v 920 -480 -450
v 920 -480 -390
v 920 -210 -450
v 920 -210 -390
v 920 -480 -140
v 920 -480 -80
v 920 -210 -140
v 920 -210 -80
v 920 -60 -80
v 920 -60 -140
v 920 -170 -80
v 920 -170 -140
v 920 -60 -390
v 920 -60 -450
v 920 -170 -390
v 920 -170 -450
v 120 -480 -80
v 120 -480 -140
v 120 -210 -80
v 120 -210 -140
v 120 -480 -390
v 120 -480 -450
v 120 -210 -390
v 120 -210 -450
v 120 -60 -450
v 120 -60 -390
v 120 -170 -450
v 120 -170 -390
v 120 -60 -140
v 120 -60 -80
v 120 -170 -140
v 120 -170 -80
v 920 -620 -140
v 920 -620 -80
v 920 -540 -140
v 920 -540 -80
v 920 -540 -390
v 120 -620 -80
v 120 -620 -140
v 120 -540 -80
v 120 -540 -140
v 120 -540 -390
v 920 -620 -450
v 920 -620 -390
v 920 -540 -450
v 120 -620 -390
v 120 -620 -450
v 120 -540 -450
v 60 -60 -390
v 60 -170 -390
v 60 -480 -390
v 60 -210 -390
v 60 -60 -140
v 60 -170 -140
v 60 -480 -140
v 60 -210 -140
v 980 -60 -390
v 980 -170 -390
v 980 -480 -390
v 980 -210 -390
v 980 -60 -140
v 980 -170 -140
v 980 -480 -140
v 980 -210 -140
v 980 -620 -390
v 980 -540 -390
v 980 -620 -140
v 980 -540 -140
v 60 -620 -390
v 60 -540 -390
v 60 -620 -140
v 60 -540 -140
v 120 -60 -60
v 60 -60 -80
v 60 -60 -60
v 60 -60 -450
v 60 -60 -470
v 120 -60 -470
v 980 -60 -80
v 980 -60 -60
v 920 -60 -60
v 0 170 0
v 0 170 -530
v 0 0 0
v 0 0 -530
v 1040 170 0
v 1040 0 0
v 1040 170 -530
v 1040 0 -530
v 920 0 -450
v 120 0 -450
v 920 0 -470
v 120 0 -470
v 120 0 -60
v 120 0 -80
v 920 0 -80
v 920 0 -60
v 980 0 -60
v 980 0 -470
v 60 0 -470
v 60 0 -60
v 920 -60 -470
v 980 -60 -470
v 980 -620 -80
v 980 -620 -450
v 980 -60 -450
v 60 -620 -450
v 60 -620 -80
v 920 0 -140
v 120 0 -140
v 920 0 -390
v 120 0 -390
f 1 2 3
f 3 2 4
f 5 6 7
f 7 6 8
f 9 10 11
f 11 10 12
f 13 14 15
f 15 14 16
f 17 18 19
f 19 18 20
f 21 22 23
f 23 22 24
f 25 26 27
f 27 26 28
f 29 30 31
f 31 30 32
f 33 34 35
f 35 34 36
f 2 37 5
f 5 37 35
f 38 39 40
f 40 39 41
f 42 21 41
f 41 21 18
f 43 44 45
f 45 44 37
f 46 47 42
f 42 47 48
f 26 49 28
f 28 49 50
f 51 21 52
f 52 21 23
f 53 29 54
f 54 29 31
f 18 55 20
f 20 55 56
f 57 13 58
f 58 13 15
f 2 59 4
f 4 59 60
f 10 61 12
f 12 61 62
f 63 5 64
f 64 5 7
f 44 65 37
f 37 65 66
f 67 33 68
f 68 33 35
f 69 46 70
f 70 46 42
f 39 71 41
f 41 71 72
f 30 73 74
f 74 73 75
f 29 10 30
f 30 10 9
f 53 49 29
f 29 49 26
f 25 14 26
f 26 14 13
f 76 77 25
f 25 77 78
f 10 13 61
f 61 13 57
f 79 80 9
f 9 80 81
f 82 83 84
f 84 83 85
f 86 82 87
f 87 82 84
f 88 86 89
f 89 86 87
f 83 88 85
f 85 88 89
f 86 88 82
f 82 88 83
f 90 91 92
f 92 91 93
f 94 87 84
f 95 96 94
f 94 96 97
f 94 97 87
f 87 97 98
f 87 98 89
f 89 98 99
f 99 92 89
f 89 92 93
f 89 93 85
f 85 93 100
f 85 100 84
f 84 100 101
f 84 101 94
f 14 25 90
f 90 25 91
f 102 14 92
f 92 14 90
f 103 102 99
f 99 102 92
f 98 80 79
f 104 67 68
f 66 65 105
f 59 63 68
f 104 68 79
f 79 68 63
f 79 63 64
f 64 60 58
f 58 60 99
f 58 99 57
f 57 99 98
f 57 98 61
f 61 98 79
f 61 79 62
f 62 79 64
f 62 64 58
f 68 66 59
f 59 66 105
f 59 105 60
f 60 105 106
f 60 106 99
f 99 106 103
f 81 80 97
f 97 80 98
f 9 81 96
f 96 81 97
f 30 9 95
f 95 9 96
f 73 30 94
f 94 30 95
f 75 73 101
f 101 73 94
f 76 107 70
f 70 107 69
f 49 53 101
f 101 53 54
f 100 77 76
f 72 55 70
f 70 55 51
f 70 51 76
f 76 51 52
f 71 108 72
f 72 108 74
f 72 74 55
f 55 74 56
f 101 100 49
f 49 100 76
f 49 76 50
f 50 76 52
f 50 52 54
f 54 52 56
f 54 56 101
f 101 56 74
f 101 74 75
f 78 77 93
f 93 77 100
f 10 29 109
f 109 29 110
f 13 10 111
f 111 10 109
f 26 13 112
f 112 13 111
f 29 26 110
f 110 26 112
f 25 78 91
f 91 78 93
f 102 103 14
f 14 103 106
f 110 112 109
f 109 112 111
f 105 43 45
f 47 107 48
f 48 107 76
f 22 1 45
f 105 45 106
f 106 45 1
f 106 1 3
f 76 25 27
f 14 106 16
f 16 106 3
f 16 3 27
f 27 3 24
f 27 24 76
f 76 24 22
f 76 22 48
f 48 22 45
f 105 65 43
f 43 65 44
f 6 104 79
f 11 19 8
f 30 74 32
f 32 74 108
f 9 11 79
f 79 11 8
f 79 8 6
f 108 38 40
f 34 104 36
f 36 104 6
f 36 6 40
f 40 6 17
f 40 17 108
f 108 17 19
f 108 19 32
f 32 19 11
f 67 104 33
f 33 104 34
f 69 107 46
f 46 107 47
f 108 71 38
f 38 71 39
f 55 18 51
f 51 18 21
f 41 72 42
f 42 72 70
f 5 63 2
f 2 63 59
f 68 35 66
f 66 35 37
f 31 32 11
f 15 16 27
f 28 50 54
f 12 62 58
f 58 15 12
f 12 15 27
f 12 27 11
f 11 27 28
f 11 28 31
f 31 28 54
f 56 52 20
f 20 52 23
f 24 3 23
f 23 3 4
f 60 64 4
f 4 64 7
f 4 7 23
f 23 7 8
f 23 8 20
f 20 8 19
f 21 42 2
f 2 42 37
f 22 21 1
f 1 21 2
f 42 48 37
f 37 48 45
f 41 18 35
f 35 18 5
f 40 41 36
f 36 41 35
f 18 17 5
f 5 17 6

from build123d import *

# Parameters (mm, degrees)
SKETCH_2_W      = 1040
SKETCH_2_H      = 530
EXTRUDE_1_DEPTH = 170
SKETCH_3_W      = 800
SKETCH_3_H      = 60
SKETCH_3_W_2    = 60
SKETCH_3_H_2    = 410
EXTRUDE_2_DEPTH = 60
SKETCH_4_W      = 60
SKETCH_4_H      = 60
EXTRUDE_3_DEPTH = 560
EXTRUDE_4_REACH = 1274.046
SKETCH_5_W      = 60
SKETCH_5_H      = 60
SKETCH_5_H_2    = 40
EXTRUDE_5_REACH = 1231.512
SKETCH_6_W      = 60
SKETCH_6_H      = 60
EXTRUDE_6_REACH = 1231.512
SKETCH_7_W      = 370
SKETCH_7_H      = 40


with BuildPart() as part:
    # ｽｹｯﾁ2 → ﾎﾞｽ - 押し出し1 (new body)
    with BuildSketch(Plane(origin=(0, 0, 0), x_dir=(1, 0, 0), z_dir=(0, 1, 0))):
        with Locations((520, 265)):
            Rectangle(SKETCH_2_W, SKETCH_2_H)
    extrude(amount=EXTRUDE_1_DEPTH)

    # ｽｹｯﾁ3 → ﾎﾞｽ - 押し出し2 (add)
    with BuildSketch(Plane(origin=(0, 0, 0), x_dir=(-1, 0, 0), z_dir=(0, -1, 0))):
        with Locations((-520, 420)):
            Rectangle(SKETCH_3_W, SKETCH_3_H)
        with Locations((-950, 265)):
            Rectangle(SKETCH_3_W_2, SKETCH_3_H_2)
        with Locations((-520, 110)):
            Rectangle(SKETCH_3_W, SKETCH_3_H)
        with Locations((-90, 265)):
            Rectangle(SKETCH_3_W_2, SKETCH_3_H_2)
    extrude(amount=EXTRUDE_2_DEPTH)

    # ｽｹｯﾁ4 → ﾎﾞｽ - 押し出し3 (add)
    with BuildSketch(Plane(origin=(0, -60, 0), x_dir=(-1, 0, 0), z_dir=(0, -1, 0))):
        with Locations((-950, 420)):
            Rectangle(SKETCH_4_W, SKETCH_4_H)
        with Locations((-950, 110)):
            Rectangle(SKETCH_4_W, SKETCH_4_H)
        with Locations((-90, 420)):
            Rectangle(SKETCH_4_W, SKETCH_4_H)
        with Locations((-90, 110)):
            Rectangle(SKETCH_4_W, SKETCH_4_H)
    extrude(amount=EXTRUDE_3_DEPTH)

    # ｽｹｯﾁ5 → ﾎﾞｽ - 押し出し4 (add, up to next)
    with BuildSketch(Plane(origin=(0, 0, -140), x_dir=(-1, 0, 0), z_dir=(0, 0, -1)), mode=Mode.PRIVATE) as extrude_4_sk1:
        with Locations((-90, -510)):
            Rectangle(SKETCH_5_W, SKETCH_5_H)
    extrude_4_tool1 = extrude(extrude_4_sk1.sketch, amount=EXTRUDE_4_REACH, mode=Mode.PRIVATE) - part.part
    # ｽｹｯﾁ5 → ﾎﾞｽ - 押し出し4 (add, up to next)
    with BuildSketch(Plane(origin=(0, 0, -140), x_dir=(-1, 0, 0), z_dir=(0, 0, -1)), mode=Mode.PRIVATE) as extrude_4_sk2:
        with Locations((-950, -510)):
            Rectangle(SKETCH_5_W, SKETCH_5_H)
    extrude_4_tool2 = extrude(extrude_4_sk2.sketch, amount=EXTRUDE_4_REACH, mode=Mode.PRIVATE) - part.part
    # ｽｹｯﾁ5 → ﾎﾞｽ - 押し出し4 (add, up to next)
    with BuildSketch(Plane(origin=(0, 0, -140), x_dir=(-1, 0, 0), z_dir=(0, 0, -1)), mode=Mode.PRIVATE) as extrude_4_sk3:
        with Locations((-950, -190)):
            Rectangle(SKETCH_5_W, SKETCH_5_H_2)
    extrude_4_tool3 = extrude(extrude_4_sk3.sketch, amount=EXTRUDE_4_REACH, mode=Mode.PRIVATE) - part.part
    # ｽｹｯﾁ5 → ﾎﾞｽ - 押し出し4 (add, up to next)
    with BuildSketch(Plane(origin=(0, 0, -140), x_dir=(-1, 0, 0), z_dir=(0, 0, -1)), mode=Mode.PRIVATE) as extrude_4_sk4:
        with Locations((-90, -190)):
            Rectangle(SKETCH_5_W, SKETCH_5_H_2)
    extrude_4_tool4 = extrude(extrude_4_sk4.sketch, amount=EXTRUDE_4_REACH, mode=Mode.PRIVATE) - part.part
    add(extrude_4_tool1.solids().sort_by_distance((90, -510, -140))[0])
    add(extrude_4_tool2.solids().sort_by_distance((950, -510, -140))[0])
    add(extrude_4_tool3.solids().sort_by_distance((950, -190, -140))[0])
    add(extrude_4_tool4.solids().sort_by_distance((90, -190, -140))[0])

    # ｽｹｯﾁ6 → ﾎﾞｽ - 押し出し5 (add, up to next)
    with BuildSketch(Plane(origin=(120, 0, 0), x_dir=(0, 0, -1), z_dir=(1, 0, 0)), mode=Mode.PRIVATE) as extrude_5_sk1:
        with Locations((420, -510)):
            Rectangle(SKETCH_6_W, SKETCH_6_H)
    extrude_5_tool1 = extrude(extrude_5_sk1.sketch, amount=EXTRUDE_5_REACH, mode=Mode.PRIVATE) - part.part
    # ｽｹｯﾁ6 → ﾎﾞｽ - 押し出し5 (add, up to next)
    with BuildSketch(Plane(origin=(120, 0, 0), x_dir=(0, 0, -1), z_dir=(1, 0, 0)), mode=Mode.PRIVATE) as extrude_5_sk2:
        with Locations((110, -510)):
            Rectangle(SKETCH_6_W, SKETCH_6_H)
    extrude_5_tool2 = extrude(extrude_5_sk2.sketch, amount=EXTRUDE_5_REACH, mode=Mode.PRIVATE) - part.part
    add(extrude_5_tool1.solids().sort_by_distance((120, -510, -420))[0])
    add(extrude_5_tool2.solids().sort_by_distance((120, -510, -110))[0])

    # ｽｹｯﾁ7 → ﾎﾞｽ - 押し出し6 (add, up to next)
    with BuildSketch(Plane(origin=(120, 0, 0), x_dir=(0, 0, -1), z_dir=(1, 0, 0)), mode=Mode.PRIVATE) as extrude_6_sk1:
        with Locations((265, -190)):
            Rectangle(SKETCH_7_W, SKETCH_7_H)
    extrude_6_tool1 = extrude(extrude_6_sk1.sketch, amount=EXTRUDE_6_REACH, mode=Mode.PRIVATE) - part.part
    add(extrude_6_tool1.solids().sort_by_distance((120, -190, -265))[0])


solid = part.part
